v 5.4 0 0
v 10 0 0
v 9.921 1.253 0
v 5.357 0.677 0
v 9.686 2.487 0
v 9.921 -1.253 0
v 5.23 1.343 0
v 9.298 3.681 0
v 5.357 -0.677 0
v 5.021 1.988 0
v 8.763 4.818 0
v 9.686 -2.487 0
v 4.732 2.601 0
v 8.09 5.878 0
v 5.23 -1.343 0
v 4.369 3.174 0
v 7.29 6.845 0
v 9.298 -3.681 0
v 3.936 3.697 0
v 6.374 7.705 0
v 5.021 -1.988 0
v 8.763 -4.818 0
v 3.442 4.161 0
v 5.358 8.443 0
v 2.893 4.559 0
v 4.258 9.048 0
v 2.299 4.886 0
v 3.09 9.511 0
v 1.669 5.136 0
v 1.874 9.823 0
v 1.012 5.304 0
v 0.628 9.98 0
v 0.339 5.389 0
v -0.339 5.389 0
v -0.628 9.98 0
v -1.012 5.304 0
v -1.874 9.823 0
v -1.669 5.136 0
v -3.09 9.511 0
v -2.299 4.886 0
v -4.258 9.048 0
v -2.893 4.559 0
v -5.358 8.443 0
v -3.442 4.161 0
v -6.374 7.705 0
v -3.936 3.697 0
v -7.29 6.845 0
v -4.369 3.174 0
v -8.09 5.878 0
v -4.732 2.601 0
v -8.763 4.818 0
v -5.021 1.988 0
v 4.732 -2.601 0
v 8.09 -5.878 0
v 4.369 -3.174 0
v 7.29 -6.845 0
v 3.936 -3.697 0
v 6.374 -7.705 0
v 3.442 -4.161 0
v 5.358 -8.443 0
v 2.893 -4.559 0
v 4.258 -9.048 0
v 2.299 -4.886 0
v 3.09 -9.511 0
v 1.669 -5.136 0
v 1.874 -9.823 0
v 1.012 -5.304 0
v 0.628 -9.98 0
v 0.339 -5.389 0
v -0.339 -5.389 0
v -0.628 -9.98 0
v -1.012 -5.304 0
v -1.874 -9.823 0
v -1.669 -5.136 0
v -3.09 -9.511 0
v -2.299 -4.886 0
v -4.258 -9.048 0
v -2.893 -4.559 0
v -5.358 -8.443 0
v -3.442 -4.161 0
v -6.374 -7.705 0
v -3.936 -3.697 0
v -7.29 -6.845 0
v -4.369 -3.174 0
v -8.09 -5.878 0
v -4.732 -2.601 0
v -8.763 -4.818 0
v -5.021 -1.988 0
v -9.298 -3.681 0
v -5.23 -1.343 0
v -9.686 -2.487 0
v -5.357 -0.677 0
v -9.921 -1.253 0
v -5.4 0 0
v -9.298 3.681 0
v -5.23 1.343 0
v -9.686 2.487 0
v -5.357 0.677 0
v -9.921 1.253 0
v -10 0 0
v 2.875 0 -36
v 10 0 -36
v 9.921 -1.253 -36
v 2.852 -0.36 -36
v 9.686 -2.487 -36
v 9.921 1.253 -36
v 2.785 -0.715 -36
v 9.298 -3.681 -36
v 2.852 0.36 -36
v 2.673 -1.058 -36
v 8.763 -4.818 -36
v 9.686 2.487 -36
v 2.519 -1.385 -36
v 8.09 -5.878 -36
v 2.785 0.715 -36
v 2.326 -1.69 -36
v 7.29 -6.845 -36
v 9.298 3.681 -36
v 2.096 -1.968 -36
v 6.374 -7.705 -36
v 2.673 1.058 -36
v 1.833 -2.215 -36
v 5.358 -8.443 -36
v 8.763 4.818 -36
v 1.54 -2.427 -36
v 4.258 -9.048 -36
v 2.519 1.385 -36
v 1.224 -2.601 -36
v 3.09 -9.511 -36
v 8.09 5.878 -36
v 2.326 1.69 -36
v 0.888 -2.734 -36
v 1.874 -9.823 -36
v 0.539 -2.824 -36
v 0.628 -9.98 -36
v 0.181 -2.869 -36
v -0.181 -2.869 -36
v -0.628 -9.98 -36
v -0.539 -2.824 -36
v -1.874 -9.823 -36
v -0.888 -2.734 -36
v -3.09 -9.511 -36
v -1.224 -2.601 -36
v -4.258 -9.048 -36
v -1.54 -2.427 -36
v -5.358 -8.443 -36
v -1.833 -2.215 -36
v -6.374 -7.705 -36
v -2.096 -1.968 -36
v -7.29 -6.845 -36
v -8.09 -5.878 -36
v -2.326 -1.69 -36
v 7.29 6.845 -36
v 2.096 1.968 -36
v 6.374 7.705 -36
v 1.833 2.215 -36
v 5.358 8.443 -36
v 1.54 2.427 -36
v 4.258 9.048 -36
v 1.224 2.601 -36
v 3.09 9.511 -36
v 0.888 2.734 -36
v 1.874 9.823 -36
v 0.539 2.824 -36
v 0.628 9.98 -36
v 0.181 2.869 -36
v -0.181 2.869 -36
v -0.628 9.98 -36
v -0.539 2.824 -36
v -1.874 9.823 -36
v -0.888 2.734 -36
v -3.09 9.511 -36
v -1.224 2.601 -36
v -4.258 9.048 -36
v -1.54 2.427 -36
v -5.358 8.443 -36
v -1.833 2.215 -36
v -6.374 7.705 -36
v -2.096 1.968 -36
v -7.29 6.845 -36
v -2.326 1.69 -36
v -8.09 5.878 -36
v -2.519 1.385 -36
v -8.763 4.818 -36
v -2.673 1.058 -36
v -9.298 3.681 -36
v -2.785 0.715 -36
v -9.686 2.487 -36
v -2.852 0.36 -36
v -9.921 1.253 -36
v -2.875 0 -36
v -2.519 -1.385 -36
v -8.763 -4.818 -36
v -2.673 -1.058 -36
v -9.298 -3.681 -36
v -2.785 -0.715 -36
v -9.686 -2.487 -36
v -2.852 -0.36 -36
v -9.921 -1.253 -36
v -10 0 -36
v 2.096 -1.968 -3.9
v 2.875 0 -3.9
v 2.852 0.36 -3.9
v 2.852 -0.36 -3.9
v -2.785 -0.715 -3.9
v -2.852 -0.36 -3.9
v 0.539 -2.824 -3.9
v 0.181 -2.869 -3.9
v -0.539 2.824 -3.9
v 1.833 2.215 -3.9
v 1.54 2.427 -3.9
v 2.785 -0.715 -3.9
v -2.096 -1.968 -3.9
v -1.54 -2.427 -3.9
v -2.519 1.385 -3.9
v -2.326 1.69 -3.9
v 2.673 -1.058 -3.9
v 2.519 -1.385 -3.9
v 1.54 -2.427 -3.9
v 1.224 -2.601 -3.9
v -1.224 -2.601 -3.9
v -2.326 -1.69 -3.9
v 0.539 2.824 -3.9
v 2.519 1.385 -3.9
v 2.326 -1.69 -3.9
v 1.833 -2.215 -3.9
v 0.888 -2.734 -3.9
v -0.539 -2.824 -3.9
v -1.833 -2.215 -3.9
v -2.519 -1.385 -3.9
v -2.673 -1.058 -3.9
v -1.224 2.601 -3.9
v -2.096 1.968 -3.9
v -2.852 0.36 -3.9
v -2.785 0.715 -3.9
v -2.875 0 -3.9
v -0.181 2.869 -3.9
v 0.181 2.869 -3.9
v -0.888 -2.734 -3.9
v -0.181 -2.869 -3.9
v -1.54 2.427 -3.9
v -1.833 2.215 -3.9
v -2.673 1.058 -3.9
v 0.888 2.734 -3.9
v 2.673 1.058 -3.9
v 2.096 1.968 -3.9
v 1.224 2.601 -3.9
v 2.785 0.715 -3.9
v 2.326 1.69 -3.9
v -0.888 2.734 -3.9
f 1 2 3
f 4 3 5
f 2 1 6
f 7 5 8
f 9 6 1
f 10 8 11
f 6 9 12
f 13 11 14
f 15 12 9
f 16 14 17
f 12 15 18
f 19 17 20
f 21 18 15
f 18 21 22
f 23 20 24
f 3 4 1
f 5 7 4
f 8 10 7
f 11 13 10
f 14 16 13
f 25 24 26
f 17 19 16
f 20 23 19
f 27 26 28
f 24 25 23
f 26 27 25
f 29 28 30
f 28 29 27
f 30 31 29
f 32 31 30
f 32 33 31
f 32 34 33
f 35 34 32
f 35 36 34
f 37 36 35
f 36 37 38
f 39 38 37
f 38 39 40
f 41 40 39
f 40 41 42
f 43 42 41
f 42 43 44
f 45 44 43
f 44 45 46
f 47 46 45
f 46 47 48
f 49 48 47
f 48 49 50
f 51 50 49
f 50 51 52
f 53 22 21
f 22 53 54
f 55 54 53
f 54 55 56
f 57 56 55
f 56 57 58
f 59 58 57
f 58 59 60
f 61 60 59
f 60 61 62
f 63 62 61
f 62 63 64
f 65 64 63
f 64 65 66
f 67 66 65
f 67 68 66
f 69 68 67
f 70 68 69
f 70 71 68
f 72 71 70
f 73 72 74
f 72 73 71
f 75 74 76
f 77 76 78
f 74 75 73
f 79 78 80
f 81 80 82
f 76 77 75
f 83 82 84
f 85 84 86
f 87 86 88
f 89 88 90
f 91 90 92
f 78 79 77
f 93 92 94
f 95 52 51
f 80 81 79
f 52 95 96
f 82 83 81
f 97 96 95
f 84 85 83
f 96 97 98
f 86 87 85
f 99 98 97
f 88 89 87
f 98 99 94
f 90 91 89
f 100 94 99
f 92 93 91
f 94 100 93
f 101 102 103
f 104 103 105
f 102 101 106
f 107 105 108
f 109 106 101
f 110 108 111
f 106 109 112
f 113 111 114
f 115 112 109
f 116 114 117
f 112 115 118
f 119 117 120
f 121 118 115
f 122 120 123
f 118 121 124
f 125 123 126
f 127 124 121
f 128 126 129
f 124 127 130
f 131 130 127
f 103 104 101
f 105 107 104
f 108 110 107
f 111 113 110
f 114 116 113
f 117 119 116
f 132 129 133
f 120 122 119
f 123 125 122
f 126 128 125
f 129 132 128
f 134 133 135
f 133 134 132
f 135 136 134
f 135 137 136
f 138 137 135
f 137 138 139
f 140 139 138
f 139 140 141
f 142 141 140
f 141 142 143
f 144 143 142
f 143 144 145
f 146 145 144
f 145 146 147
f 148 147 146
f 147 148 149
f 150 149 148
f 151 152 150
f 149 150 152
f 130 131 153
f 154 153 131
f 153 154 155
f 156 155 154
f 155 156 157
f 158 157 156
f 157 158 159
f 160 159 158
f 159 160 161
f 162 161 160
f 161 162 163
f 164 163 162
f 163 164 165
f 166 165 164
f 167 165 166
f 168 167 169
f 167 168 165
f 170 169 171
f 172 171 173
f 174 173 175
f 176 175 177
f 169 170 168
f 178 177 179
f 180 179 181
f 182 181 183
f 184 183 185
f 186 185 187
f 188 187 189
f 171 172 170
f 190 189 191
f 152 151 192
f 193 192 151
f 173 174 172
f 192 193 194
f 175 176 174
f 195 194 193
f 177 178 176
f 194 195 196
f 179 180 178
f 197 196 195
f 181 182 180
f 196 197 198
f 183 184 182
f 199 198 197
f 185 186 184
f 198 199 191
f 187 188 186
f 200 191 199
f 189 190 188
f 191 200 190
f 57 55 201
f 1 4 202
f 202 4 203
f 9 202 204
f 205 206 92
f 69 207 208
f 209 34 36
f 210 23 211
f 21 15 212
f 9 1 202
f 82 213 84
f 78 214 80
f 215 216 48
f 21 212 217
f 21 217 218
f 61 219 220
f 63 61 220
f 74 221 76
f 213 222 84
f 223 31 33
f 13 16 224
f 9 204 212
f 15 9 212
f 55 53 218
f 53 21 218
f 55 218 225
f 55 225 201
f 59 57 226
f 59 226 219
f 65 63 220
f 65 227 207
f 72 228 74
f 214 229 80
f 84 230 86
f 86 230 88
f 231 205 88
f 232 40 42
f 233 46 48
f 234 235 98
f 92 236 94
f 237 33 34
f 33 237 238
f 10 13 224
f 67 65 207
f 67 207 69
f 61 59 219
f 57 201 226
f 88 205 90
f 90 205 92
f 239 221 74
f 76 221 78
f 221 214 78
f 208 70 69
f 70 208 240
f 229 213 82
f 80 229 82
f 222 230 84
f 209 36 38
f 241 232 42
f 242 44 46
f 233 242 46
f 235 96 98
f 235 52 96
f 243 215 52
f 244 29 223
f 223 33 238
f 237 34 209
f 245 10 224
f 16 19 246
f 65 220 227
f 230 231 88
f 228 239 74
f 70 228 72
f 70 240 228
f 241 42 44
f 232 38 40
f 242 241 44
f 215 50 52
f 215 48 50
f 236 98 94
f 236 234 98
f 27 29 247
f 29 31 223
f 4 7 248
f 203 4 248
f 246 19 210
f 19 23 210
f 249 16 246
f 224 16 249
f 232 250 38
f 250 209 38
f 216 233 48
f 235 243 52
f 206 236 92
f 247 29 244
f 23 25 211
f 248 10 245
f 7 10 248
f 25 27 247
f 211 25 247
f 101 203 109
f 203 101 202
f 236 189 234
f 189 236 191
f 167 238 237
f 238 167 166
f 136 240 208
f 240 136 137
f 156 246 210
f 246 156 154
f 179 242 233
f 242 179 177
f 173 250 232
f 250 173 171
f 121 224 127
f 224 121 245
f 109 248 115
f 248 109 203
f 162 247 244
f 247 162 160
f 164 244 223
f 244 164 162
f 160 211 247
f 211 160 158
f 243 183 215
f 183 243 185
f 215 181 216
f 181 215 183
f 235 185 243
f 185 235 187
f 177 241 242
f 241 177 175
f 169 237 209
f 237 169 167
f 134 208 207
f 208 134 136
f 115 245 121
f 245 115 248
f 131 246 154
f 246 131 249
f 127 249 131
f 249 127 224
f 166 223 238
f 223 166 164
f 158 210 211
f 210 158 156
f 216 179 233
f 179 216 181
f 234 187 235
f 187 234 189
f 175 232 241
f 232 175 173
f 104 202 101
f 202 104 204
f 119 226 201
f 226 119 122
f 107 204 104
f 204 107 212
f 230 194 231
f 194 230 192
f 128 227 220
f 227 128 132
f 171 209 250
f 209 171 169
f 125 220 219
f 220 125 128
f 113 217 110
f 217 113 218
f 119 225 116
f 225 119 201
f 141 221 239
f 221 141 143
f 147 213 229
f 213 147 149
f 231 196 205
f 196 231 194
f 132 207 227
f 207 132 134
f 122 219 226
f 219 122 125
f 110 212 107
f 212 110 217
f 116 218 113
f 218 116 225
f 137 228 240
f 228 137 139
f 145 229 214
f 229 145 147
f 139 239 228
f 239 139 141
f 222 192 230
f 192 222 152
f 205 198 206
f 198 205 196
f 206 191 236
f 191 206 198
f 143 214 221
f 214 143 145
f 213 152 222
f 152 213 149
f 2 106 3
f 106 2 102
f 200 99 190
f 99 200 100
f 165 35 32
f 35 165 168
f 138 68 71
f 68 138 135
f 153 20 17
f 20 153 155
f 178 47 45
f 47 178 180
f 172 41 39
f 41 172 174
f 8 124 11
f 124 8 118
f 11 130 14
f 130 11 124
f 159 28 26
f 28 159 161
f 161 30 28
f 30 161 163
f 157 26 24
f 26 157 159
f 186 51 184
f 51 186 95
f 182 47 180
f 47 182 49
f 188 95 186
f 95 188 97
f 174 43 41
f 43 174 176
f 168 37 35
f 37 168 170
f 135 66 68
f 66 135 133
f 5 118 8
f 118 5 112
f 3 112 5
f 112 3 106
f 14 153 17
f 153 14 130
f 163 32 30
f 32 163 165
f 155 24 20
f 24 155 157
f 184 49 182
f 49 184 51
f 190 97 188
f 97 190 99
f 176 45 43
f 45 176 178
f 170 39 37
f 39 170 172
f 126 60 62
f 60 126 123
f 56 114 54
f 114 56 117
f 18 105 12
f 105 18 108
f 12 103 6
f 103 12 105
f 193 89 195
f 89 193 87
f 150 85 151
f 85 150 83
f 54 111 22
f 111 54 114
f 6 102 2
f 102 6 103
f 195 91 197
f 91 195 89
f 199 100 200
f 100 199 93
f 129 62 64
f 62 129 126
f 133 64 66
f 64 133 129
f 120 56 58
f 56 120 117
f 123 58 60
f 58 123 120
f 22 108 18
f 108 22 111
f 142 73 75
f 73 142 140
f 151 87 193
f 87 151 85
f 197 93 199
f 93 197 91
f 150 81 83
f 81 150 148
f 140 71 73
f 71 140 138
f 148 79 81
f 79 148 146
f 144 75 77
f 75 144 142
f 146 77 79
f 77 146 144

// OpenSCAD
$fn = 50;


difference() {
	union() {
		translate(v = [0, 0, -36.0000000000]) {
			cylinder(h = 36, r = 10.0000000000);
		}
		cylinder(h = 0, r = 13.0000000000);
	}
	union() {
		translate(v = [0, 0, 0]) {
			rotate(a = [0, 0, 0]) {
				difference() {
					union() {
						#translate(v = [0, 0, -36.0000000000]) {
							cylinder(h = 36, r = 2.6000000000);
						}
						#translate(v = [0, 0, -3.9000000000]) {
							cylinder(h = 3.9000000000, r = 10.0000000000, r1 = 2.8750000000, r2 = 5.4000000000);
						}
						#translate(v = [0, 0, -36.0000000000]) {
							cylinder(h = 36, r = 2.8750000000);
						}
						#translate(v = [0, 0, -36.0000000000]) {
							cylinder(h = 36, r = 2.6000000000);
						}
					}
					union();
				}
			}
		}
	}
}
